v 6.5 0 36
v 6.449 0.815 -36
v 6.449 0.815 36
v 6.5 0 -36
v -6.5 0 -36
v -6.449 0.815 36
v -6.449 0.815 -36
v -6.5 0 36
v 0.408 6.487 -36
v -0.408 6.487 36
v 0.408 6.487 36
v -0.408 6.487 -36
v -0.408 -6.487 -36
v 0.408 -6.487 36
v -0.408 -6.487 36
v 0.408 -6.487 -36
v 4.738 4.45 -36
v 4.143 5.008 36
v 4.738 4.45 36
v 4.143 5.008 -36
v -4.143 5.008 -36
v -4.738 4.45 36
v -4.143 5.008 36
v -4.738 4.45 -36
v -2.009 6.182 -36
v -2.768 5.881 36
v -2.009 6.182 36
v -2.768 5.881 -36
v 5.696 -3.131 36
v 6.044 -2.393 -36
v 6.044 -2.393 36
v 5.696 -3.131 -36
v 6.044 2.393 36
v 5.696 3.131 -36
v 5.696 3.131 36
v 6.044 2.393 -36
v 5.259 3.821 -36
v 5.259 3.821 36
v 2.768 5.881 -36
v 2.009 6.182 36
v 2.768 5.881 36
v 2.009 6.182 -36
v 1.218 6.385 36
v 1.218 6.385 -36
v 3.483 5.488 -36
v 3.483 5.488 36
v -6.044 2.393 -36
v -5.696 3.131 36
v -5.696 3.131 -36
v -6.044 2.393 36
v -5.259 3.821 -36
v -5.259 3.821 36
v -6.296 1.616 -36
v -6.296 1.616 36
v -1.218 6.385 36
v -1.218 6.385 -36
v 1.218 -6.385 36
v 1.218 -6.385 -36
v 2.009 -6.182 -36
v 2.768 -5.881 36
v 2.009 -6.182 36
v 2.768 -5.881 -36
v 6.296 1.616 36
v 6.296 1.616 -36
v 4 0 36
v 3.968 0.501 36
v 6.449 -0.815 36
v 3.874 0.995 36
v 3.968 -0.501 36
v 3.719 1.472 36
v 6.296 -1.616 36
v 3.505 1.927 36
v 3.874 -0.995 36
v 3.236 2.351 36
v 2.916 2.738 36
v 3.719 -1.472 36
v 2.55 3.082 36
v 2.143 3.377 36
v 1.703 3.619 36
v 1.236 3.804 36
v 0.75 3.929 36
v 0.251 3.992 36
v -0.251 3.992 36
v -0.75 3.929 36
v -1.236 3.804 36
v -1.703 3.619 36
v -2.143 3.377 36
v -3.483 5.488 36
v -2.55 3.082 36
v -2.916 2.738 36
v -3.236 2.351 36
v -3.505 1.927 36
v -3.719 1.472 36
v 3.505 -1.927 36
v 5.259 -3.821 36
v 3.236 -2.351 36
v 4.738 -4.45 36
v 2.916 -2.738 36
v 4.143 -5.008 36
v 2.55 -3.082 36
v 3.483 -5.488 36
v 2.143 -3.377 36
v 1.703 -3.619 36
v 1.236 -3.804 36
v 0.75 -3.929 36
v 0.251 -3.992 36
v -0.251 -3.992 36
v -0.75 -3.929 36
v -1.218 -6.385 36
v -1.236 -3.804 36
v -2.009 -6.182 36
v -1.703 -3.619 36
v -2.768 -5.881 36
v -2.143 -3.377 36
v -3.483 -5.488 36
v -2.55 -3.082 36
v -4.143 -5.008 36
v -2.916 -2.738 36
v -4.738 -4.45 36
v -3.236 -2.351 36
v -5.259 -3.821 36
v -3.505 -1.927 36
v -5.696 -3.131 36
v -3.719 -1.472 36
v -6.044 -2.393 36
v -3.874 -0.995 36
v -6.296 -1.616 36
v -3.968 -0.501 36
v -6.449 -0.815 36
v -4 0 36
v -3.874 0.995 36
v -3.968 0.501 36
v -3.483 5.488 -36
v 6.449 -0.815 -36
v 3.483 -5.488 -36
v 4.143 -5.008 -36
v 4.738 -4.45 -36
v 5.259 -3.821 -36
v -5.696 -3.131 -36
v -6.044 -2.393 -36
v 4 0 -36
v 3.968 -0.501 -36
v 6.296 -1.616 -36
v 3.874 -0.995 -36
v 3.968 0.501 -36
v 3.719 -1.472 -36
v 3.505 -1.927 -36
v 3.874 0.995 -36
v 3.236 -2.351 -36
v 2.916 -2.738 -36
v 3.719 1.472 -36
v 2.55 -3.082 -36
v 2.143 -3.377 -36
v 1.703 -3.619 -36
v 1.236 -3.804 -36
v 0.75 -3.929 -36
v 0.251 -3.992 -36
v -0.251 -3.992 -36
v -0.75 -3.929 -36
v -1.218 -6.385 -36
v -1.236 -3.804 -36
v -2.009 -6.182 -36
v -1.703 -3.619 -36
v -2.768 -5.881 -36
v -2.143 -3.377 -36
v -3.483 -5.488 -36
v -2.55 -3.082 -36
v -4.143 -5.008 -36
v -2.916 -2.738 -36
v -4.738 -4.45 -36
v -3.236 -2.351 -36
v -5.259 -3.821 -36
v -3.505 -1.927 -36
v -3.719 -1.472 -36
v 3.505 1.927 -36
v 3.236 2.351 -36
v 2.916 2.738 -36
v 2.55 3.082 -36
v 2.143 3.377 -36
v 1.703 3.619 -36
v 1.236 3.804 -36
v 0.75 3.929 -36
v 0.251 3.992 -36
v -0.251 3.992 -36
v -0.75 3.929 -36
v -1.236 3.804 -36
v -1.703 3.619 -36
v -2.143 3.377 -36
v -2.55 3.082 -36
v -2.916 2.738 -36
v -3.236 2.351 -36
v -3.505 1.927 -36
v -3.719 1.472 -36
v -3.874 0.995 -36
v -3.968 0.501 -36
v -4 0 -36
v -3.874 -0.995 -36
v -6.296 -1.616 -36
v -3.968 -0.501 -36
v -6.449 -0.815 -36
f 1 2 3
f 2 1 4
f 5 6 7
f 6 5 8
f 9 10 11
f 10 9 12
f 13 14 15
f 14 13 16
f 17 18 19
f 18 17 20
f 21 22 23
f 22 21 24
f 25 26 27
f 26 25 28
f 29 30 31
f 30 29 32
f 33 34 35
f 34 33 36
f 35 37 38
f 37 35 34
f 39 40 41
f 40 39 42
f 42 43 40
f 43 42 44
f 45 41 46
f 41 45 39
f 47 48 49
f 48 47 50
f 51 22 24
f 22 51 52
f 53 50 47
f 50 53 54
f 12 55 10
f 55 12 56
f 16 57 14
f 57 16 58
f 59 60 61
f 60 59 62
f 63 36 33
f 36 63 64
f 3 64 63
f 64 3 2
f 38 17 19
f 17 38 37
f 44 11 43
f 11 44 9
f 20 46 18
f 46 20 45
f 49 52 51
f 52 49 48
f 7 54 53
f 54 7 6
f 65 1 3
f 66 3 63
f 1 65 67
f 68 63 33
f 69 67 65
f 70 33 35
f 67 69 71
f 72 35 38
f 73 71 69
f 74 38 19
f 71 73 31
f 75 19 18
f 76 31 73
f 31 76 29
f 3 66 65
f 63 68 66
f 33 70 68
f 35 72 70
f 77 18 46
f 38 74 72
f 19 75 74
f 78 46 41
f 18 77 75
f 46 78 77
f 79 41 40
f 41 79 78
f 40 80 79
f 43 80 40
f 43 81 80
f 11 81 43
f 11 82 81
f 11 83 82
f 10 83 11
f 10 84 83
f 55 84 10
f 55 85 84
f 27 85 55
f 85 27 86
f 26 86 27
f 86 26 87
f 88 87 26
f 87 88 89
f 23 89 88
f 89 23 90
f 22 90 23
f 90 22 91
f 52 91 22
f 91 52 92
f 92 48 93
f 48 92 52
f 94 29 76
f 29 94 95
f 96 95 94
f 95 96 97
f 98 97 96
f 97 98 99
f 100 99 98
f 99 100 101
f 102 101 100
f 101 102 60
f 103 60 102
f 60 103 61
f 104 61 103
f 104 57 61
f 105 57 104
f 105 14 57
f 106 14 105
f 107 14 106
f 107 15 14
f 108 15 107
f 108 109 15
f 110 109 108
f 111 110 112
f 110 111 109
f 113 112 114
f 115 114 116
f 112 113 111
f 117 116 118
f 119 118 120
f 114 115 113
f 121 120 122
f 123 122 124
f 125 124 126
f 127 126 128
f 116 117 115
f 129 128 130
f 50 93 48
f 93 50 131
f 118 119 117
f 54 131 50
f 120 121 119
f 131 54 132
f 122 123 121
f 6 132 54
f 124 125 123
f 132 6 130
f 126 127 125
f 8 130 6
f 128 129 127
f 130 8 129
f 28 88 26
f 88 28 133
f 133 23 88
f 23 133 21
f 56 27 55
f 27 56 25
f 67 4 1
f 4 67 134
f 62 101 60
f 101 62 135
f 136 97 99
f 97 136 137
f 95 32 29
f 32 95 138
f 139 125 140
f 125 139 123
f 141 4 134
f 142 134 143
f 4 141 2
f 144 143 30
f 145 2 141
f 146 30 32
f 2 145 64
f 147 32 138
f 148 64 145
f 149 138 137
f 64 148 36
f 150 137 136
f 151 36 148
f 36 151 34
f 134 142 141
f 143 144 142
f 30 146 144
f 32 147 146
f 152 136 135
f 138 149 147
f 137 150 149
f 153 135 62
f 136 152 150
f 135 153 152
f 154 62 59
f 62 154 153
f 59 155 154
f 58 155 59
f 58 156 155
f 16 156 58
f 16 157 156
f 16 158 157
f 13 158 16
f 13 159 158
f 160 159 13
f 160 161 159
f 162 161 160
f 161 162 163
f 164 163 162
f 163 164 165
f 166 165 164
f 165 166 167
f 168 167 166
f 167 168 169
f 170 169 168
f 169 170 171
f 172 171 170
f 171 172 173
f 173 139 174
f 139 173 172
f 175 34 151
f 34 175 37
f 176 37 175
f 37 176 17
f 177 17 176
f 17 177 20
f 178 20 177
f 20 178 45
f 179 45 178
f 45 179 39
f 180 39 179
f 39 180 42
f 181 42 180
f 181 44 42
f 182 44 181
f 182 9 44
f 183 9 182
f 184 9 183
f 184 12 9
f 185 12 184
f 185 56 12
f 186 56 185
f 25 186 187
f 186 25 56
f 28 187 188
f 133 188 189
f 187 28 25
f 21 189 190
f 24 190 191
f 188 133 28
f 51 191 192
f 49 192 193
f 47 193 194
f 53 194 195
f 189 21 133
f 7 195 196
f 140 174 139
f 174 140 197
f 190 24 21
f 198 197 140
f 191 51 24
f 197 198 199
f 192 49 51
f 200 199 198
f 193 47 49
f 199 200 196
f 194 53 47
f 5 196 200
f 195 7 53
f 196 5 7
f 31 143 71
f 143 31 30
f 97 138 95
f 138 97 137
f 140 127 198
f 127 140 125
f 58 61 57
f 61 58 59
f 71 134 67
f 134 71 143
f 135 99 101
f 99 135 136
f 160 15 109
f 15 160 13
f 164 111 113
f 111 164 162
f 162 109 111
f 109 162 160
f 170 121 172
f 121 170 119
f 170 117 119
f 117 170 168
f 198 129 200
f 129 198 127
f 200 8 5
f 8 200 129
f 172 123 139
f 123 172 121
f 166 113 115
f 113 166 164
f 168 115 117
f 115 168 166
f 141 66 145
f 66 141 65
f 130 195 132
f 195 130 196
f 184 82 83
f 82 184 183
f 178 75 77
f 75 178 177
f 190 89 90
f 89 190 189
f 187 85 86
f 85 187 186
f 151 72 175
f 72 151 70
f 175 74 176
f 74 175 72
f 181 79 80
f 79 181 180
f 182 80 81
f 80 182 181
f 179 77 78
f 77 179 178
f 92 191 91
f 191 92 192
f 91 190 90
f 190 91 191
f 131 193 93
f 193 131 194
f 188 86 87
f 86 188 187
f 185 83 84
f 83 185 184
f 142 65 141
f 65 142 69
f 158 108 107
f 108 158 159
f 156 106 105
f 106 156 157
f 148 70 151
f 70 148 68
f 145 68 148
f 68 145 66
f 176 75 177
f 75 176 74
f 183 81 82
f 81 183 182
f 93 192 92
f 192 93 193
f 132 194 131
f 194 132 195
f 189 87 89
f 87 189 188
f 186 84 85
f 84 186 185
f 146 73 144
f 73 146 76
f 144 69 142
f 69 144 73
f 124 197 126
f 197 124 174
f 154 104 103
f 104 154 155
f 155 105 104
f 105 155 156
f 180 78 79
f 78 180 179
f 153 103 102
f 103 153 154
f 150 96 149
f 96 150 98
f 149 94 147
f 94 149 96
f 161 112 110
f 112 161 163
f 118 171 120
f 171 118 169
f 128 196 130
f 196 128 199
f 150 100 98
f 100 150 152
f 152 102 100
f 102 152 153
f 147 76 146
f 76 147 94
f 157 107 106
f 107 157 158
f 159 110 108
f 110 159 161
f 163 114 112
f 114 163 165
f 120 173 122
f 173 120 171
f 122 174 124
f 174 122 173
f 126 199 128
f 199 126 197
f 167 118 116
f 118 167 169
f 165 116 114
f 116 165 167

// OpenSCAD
$fn = 50;


difference() {
	union() {
		translate(v = [0, 0, -36.0000000000]) {
			cylinder(h = 72, r = 6.5000000000);
		}
	}
	union() {
		translate(v = [0, 0, -100.0000000000]) {
			cylinder(h = 200, r = 4);
		}
	}
}
